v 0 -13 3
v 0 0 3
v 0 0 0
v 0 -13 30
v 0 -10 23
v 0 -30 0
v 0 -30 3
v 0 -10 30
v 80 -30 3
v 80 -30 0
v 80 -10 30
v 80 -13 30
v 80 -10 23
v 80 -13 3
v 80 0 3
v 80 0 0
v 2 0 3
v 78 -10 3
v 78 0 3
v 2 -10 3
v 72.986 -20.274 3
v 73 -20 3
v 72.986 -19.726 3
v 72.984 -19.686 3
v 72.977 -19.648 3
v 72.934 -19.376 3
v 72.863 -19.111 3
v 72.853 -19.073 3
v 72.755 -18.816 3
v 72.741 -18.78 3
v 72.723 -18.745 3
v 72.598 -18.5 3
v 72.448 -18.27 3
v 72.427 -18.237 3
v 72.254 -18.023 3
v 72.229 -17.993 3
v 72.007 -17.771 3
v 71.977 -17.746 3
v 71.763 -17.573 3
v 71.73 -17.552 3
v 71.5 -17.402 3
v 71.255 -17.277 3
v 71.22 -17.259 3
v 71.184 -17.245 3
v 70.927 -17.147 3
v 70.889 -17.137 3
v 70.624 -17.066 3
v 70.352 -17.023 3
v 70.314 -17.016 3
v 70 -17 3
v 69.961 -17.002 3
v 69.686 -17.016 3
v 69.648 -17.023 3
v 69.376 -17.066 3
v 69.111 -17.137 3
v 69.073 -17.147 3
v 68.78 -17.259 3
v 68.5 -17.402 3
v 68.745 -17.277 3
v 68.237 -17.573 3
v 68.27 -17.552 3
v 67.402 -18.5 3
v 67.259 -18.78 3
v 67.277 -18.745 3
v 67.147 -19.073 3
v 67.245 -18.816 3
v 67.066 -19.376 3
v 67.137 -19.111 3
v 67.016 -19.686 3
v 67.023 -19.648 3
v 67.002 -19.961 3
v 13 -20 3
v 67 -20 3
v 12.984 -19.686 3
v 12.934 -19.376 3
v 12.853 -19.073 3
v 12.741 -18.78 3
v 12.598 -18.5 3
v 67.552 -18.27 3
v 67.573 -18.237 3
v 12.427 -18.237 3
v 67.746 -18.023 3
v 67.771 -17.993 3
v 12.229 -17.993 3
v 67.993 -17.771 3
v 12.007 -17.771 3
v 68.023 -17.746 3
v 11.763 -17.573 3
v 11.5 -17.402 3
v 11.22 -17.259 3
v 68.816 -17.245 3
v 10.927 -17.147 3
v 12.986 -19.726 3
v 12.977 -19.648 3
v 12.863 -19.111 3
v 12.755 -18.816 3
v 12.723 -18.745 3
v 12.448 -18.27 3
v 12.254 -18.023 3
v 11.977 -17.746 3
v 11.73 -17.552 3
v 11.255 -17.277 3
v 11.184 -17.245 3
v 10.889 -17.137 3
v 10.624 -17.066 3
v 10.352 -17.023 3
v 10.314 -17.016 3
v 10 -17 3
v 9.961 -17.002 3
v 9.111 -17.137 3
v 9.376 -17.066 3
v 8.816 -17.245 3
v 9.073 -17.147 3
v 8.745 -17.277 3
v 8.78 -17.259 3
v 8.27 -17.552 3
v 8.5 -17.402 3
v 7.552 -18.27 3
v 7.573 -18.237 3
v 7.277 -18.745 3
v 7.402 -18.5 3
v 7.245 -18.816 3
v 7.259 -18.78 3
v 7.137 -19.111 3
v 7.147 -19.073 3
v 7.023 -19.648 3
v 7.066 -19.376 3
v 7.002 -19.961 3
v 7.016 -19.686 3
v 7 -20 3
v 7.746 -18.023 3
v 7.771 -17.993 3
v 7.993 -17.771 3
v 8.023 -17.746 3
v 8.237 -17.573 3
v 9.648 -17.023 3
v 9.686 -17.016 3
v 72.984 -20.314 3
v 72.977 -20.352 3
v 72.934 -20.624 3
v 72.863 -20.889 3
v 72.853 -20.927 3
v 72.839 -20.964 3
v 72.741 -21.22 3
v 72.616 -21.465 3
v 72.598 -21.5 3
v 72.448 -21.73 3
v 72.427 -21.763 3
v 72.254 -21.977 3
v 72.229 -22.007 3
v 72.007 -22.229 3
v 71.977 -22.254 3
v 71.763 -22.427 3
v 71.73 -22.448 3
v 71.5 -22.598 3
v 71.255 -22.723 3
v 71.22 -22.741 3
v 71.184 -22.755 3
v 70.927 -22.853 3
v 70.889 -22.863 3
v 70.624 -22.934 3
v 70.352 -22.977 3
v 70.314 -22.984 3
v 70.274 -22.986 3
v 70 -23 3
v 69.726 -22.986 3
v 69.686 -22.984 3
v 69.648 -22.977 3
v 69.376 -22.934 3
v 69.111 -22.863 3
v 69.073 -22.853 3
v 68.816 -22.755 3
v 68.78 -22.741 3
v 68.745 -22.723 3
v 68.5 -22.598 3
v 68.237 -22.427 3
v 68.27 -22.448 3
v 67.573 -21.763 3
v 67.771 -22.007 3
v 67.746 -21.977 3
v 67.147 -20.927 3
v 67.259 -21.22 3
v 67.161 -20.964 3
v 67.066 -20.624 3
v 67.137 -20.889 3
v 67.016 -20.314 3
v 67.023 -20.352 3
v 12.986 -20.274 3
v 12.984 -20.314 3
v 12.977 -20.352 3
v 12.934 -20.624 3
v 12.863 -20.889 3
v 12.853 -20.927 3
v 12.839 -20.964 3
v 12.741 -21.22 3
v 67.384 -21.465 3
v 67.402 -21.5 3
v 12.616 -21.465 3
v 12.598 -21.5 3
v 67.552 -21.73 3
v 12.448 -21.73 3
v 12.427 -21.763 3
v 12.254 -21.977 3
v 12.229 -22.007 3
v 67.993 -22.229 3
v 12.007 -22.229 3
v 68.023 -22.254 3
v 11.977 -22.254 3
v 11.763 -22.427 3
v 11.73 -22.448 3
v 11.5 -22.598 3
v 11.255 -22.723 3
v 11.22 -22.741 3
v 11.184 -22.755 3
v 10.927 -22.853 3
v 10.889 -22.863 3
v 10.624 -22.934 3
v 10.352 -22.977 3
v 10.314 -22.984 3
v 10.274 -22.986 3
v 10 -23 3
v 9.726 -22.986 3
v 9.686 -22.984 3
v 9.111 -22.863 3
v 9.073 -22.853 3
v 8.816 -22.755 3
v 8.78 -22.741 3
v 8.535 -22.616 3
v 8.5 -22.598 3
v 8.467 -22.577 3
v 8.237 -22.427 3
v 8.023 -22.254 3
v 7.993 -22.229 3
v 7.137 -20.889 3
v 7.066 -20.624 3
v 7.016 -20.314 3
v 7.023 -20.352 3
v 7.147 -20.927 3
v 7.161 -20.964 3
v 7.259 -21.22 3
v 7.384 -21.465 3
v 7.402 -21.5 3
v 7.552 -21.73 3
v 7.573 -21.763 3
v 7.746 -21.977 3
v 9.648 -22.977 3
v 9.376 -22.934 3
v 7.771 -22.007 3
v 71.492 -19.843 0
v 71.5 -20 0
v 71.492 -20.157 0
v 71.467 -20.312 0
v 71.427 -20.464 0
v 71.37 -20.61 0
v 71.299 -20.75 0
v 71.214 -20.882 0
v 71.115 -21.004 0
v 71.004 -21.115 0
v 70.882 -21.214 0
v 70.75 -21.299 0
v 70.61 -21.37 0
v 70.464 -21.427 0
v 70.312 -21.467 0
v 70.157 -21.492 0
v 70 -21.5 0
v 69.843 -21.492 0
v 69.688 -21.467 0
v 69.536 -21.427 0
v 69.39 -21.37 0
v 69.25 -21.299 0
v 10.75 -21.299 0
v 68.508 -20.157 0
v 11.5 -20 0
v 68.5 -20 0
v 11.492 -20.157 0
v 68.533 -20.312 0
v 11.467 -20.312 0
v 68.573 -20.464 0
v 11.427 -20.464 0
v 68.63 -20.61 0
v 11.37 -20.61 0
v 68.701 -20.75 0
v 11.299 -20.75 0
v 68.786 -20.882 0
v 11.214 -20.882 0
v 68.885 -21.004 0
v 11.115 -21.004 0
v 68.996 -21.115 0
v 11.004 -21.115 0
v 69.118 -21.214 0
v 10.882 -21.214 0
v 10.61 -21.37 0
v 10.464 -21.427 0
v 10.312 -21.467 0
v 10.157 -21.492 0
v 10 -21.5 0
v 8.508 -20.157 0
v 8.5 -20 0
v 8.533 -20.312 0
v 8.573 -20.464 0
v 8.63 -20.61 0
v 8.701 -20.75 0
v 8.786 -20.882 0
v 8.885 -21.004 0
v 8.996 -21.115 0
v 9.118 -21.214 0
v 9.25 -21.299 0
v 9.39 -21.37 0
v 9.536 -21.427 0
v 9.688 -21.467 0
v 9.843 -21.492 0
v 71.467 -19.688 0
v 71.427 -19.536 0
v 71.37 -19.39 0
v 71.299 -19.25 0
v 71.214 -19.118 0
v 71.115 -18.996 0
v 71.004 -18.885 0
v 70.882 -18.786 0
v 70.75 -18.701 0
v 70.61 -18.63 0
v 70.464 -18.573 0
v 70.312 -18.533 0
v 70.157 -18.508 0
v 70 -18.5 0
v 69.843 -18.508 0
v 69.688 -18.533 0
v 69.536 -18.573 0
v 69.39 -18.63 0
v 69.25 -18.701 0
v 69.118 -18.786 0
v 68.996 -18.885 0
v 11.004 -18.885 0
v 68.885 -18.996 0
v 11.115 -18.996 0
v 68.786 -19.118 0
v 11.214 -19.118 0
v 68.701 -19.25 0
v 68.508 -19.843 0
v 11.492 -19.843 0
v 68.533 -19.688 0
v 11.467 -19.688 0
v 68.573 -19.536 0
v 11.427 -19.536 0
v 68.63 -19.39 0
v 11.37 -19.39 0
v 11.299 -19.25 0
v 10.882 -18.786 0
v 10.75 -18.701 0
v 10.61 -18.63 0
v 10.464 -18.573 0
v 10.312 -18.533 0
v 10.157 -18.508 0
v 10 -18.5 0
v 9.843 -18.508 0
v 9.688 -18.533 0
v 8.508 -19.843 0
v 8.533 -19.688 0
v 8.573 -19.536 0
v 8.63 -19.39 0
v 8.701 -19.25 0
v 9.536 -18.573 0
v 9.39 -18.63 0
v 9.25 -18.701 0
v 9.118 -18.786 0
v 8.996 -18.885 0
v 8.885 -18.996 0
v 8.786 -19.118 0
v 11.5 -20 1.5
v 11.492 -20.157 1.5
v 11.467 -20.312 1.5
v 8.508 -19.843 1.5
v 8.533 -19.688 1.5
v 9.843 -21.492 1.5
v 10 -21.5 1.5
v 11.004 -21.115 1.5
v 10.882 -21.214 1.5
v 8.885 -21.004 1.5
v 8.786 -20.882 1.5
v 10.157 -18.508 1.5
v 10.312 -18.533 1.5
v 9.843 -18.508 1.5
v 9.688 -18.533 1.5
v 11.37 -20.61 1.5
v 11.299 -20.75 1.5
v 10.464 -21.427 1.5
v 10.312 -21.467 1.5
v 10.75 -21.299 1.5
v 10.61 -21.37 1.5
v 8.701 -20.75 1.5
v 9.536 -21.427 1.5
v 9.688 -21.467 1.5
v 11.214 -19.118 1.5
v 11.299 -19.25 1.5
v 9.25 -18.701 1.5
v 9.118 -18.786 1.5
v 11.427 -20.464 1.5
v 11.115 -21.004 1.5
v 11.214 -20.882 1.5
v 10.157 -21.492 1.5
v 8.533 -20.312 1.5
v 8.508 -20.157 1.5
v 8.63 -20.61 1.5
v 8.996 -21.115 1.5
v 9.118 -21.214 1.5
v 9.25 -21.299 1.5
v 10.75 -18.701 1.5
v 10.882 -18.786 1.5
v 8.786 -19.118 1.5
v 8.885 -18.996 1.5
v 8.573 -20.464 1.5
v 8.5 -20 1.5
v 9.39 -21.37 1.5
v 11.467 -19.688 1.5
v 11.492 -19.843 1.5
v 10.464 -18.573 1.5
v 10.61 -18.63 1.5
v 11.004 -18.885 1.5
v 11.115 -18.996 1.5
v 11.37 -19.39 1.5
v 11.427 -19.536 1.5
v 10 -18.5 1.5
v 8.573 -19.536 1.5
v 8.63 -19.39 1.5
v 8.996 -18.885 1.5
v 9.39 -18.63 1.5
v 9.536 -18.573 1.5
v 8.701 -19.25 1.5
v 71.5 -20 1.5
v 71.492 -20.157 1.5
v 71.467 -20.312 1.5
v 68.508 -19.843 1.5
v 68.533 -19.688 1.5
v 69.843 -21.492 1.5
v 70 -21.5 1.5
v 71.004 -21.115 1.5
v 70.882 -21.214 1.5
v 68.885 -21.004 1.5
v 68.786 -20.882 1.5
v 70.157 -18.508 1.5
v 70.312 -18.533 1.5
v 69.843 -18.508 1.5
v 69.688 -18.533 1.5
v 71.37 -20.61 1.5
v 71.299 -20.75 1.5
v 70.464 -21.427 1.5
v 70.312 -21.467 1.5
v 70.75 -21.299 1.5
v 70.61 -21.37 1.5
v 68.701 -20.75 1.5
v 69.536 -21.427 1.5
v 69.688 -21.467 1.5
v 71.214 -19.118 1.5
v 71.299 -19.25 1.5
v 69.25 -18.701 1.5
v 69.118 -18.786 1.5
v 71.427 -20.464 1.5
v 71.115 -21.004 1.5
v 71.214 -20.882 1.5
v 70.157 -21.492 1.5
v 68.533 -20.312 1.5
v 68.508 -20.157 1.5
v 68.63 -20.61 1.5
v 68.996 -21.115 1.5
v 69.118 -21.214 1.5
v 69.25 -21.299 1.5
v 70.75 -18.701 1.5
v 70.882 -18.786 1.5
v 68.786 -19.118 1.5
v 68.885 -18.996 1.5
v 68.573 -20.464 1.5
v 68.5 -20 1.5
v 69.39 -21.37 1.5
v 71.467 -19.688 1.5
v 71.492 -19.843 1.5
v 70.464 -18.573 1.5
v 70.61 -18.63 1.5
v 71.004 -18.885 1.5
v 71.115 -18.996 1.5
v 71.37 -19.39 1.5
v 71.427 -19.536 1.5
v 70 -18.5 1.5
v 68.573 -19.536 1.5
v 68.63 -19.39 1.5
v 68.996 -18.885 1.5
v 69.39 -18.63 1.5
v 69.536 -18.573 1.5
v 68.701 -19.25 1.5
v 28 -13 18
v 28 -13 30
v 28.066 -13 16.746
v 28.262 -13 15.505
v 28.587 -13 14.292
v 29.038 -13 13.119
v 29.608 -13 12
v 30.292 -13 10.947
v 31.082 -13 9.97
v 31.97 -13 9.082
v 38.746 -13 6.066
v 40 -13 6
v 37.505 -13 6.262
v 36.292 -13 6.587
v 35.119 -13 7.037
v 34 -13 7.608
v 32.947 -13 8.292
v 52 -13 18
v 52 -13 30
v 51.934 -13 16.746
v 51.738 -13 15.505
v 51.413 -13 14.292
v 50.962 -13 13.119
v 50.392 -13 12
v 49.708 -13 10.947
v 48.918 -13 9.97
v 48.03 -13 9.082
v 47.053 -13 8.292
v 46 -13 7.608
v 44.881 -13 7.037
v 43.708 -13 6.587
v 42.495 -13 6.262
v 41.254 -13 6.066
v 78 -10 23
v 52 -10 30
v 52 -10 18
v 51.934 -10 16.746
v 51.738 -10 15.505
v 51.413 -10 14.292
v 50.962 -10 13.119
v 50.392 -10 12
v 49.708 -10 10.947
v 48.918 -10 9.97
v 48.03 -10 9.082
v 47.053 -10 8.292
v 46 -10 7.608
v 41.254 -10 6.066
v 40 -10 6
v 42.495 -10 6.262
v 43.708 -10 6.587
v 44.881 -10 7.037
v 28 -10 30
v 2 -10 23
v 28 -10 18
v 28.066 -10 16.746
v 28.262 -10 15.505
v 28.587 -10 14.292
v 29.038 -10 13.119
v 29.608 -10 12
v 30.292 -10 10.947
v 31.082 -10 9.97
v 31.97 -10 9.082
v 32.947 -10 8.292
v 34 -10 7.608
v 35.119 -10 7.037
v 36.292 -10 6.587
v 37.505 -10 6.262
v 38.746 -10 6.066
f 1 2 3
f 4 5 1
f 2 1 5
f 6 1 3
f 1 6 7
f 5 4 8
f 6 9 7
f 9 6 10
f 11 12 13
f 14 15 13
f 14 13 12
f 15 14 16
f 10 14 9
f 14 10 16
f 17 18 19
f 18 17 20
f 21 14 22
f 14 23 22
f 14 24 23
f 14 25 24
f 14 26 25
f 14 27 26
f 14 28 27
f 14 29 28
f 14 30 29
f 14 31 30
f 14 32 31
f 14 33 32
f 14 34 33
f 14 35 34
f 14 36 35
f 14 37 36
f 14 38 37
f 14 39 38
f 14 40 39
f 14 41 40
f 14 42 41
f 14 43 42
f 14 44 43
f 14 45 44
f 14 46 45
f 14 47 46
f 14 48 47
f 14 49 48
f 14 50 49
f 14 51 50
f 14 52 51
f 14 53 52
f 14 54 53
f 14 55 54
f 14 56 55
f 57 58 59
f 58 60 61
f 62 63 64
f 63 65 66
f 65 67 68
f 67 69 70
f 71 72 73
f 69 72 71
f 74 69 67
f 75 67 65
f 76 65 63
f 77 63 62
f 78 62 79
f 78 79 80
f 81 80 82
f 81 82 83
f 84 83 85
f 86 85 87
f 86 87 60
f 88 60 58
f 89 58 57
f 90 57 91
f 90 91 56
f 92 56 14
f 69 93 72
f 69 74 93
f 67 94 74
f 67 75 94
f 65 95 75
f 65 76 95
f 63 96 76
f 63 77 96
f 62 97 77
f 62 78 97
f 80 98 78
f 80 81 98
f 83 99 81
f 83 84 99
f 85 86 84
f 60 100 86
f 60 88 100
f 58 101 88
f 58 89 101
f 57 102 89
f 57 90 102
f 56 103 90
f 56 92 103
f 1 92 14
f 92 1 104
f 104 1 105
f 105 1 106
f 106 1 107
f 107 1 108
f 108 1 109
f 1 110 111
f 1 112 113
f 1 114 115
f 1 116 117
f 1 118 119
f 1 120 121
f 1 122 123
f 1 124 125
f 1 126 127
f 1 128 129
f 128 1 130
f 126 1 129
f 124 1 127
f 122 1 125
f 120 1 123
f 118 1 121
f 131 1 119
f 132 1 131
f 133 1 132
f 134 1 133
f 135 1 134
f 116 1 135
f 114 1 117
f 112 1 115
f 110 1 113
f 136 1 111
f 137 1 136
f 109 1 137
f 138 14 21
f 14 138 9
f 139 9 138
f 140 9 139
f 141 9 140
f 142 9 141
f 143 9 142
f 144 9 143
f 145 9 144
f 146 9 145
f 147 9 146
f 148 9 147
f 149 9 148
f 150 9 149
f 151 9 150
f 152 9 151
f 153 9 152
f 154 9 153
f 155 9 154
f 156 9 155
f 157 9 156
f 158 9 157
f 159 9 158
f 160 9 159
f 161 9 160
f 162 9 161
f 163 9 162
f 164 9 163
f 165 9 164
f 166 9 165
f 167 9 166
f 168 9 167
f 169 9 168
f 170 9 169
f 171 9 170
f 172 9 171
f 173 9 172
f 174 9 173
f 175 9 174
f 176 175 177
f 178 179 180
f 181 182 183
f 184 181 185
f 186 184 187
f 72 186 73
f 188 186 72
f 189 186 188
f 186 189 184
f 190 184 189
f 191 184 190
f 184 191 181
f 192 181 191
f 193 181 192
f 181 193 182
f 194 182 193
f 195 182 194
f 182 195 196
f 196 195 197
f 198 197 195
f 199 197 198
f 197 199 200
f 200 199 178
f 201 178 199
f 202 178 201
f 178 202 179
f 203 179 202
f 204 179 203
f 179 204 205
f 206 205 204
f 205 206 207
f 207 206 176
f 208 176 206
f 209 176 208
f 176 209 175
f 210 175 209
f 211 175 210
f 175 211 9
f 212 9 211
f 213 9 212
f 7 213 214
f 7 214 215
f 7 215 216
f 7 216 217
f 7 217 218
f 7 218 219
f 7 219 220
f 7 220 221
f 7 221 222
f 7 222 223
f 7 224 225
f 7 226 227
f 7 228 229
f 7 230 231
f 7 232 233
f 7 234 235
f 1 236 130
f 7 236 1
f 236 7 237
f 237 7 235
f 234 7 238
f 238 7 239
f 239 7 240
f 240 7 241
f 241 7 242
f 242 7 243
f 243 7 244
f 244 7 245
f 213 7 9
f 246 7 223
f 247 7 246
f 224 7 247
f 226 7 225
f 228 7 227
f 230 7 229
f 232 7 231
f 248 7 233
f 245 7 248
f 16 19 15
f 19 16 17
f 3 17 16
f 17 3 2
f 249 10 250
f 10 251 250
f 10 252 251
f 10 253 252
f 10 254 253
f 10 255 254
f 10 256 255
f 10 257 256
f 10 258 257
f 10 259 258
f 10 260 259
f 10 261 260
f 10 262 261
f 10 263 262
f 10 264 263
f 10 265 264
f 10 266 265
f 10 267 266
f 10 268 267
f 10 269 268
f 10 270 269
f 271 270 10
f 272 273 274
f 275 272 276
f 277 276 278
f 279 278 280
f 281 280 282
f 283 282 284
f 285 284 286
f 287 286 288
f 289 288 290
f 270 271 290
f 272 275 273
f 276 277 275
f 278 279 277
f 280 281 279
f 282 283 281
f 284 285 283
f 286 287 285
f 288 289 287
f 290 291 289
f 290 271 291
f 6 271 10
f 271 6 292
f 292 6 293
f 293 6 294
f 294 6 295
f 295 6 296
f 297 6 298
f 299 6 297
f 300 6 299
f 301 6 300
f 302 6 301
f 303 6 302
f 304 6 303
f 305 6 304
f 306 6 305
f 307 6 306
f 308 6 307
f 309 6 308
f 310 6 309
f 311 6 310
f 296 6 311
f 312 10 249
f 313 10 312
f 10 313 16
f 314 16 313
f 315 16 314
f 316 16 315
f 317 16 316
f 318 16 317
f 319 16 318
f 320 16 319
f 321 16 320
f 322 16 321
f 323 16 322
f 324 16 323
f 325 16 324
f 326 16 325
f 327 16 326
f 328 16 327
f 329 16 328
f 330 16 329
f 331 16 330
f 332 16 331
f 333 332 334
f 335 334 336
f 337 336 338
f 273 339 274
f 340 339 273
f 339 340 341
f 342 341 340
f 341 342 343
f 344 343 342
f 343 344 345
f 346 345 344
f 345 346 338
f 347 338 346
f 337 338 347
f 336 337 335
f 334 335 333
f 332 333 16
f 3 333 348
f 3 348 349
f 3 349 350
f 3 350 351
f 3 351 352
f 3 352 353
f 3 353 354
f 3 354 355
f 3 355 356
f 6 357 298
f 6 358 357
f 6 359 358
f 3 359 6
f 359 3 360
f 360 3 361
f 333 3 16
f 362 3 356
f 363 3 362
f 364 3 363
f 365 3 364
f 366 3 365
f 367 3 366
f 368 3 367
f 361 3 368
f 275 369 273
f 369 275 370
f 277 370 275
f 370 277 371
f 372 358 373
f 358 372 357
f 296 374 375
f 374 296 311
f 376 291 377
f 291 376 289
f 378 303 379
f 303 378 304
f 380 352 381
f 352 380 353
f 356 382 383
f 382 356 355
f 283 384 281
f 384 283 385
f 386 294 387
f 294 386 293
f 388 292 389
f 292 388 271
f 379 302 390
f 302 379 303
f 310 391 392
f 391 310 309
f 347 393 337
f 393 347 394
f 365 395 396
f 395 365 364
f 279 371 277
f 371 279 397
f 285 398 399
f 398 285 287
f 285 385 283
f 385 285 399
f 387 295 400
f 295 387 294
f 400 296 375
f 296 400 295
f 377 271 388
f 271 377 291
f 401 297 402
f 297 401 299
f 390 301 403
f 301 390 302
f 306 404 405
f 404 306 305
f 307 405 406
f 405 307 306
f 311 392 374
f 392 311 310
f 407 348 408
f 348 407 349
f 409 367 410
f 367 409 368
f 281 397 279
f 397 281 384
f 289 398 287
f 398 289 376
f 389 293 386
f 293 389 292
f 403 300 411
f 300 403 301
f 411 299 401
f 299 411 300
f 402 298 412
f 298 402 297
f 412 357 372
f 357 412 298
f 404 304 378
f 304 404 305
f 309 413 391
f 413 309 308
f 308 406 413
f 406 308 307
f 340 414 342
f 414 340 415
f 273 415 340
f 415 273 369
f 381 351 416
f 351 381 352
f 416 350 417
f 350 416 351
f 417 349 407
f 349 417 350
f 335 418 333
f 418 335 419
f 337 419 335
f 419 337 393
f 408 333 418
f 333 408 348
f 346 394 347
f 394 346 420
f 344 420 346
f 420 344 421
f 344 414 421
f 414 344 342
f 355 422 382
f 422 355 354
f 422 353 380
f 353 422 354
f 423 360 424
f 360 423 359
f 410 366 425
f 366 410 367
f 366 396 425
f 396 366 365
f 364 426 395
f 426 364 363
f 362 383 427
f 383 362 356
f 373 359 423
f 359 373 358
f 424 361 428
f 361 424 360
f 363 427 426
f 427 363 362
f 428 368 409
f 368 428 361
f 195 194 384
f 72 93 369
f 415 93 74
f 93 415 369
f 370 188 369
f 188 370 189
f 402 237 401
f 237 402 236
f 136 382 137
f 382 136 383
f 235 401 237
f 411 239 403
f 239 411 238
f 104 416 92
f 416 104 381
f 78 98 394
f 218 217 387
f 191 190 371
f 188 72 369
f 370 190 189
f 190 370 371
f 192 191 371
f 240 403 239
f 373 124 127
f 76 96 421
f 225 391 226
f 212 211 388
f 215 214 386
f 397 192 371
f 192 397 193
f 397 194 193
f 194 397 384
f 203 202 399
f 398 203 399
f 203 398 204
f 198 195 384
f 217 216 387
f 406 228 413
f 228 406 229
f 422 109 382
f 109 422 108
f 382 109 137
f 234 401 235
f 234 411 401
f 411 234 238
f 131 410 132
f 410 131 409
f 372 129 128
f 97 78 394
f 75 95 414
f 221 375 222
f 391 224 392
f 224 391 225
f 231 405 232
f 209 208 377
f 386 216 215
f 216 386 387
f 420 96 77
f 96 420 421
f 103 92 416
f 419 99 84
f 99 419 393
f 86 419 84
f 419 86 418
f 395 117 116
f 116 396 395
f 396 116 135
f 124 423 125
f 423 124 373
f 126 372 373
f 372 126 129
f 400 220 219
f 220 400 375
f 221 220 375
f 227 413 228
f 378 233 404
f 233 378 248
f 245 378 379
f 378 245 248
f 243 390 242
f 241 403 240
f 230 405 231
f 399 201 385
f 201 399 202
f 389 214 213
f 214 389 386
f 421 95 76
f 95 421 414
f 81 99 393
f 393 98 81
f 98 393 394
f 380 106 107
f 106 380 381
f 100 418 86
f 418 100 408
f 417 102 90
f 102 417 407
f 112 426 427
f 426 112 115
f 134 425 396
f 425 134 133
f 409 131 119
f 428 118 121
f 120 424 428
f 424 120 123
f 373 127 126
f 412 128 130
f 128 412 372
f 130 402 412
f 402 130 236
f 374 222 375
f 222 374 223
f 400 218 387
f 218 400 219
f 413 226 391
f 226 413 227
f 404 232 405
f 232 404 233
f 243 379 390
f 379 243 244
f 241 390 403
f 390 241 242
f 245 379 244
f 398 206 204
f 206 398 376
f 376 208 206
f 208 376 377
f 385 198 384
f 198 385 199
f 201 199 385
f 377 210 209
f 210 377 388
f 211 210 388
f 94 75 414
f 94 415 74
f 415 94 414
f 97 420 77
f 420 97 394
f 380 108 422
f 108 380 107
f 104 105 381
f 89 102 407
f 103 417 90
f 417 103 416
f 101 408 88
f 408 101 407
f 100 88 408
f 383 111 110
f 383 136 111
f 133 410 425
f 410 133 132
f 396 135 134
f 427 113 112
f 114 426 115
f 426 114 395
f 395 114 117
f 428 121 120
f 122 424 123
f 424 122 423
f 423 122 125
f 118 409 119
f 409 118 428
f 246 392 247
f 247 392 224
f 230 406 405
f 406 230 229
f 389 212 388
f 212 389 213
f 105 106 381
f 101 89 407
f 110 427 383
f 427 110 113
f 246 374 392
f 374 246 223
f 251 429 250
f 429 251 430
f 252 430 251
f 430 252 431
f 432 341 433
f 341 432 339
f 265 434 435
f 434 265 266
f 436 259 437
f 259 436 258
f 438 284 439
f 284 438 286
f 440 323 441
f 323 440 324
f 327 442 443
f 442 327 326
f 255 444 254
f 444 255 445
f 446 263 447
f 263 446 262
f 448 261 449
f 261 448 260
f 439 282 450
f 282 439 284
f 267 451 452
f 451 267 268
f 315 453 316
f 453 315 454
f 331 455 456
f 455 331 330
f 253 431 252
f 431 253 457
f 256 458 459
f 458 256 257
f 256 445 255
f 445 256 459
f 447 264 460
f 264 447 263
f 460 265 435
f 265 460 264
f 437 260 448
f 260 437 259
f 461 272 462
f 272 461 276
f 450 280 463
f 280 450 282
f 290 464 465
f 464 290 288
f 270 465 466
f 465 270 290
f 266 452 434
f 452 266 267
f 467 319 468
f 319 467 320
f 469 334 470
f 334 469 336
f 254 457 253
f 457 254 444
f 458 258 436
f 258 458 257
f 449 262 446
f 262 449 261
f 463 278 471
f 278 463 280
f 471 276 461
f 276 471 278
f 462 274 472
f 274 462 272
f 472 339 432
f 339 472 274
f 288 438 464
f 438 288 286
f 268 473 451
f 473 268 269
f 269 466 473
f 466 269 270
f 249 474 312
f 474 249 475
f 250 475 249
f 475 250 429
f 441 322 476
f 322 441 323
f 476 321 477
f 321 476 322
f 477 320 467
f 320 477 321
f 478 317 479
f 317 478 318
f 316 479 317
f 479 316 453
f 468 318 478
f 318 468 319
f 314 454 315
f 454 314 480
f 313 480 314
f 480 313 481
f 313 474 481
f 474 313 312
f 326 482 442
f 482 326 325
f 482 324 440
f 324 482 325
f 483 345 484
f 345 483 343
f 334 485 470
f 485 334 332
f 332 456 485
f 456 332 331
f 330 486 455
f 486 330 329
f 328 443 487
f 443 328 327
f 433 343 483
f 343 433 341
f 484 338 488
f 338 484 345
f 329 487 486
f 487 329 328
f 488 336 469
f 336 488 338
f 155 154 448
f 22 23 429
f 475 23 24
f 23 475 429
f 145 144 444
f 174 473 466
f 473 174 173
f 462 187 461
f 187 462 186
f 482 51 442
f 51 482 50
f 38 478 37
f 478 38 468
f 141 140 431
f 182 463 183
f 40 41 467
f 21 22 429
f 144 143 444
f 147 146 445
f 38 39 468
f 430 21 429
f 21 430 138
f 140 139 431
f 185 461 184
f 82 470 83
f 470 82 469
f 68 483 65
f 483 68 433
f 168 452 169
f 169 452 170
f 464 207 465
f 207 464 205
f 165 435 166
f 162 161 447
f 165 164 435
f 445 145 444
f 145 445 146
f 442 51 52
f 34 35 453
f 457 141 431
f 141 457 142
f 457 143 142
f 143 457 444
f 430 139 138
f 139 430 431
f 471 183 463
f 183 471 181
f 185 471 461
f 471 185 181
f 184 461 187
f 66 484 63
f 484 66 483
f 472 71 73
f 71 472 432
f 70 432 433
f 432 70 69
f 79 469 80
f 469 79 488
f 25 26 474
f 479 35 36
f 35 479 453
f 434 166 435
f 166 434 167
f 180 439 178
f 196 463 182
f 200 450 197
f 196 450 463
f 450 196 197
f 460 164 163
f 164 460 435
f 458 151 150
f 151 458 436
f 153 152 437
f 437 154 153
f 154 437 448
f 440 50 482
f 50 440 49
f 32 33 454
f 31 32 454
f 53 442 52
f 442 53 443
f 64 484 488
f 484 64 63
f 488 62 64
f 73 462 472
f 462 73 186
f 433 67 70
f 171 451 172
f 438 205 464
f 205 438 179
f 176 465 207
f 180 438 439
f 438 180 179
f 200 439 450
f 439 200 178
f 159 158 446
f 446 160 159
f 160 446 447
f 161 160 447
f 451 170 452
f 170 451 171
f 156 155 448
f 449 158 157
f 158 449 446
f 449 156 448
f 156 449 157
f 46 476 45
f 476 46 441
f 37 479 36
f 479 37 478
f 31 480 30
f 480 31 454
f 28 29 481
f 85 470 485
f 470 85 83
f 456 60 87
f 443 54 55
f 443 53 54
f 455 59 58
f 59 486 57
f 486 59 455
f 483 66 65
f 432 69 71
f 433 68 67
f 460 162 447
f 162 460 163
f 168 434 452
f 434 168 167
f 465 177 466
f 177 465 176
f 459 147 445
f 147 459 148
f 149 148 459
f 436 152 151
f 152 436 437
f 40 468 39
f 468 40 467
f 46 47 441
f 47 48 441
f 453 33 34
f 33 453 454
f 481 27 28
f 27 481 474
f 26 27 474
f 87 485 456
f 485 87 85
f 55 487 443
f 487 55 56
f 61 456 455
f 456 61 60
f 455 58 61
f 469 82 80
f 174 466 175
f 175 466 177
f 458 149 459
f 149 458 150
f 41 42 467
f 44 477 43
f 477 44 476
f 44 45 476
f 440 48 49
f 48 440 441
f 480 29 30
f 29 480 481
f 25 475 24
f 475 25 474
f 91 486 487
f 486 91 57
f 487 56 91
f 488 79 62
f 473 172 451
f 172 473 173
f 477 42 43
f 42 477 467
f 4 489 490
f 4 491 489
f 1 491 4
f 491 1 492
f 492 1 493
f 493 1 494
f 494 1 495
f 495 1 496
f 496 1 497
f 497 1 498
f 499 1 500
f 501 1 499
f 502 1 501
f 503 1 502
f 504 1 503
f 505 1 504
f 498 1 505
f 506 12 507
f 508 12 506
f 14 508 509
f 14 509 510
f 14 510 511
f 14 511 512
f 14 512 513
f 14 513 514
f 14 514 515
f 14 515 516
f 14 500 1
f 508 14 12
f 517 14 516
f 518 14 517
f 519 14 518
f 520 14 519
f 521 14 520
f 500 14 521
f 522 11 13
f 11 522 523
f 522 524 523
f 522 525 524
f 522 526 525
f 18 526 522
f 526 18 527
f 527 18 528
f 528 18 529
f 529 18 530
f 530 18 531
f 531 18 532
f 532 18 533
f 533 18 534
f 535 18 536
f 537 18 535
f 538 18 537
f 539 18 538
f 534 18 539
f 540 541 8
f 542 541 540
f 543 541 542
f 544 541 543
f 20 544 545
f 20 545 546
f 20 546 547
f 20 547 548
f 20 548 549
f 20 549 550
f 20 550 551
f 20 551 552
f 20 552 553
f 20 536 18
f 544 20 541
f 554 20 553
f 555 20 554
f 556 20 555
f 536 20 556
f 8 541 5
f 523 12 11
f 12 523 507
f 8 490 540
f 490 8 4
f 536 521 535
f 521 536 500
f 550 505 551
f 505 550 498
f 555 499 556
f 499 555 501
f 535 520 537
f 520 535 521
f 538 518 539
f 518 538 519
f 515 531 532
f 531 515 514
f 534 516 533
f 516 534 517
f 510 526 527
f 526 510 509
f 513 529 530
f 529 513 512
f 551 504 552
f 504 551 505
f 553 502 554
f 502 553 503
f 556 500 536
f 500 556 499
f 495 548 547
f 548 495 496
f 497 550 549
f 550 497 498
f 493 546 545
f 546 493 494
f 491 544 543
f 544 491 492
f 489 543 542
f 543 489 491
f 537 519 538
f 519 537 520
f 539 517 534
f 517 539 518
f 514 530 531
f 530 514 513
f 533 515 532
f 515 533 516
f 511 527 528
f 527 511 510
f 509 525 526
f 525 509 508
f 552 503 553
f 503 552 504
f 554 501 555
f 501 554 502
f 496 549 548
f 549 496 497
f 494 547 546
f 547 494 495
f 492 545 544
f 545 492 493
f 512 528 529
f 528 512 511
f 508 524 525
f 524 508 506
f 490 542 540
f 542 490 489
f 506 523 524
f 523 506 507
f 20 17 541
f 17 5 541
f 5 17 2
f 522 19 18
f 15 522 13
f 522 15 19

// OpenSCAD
$fn = 60;

rotate([90, 0, 0]) {
 difference () {
   cube([80, 3, 30]);
   translate([10, 4, 20]) rotate([90, 0, 0]) cylinder(5, r=1.5);
   translate([10, 1.5, 20]) rotate([-90, 0, 0]) cylinder(2, r1=1.5, r2=3.5);
   translate([70, 4, 20]) rotate([90, 0, 0]) cylinder(5, r=1.5);
   translate([70, 1.5, 20]) rotate([-90, 0, 0]) cylinder(2, r1=1.5, r2=3.5);
 

 
   }
 
difference () {
  translate([0, 0, 10]) cube([80, 30, 3]);
  
  translate([40, 18, 9]) cylinder(5, r=12);
  translate([28, 18, 9]) cube([24, 16, 5]);


}




translate([2, 3, 0]) rotate([0, -90, 0]) {
linear_extrude(height=2) {
polygon([[0, 0], [10, 0], [10, 20]]);
}
}

translate([80, 3, 0]) rotate([0, -90, 0]) {
linear_extrude(height=2) {
polygon([[0, 0], [10, 0], [10, 20]]);
}
}

}
